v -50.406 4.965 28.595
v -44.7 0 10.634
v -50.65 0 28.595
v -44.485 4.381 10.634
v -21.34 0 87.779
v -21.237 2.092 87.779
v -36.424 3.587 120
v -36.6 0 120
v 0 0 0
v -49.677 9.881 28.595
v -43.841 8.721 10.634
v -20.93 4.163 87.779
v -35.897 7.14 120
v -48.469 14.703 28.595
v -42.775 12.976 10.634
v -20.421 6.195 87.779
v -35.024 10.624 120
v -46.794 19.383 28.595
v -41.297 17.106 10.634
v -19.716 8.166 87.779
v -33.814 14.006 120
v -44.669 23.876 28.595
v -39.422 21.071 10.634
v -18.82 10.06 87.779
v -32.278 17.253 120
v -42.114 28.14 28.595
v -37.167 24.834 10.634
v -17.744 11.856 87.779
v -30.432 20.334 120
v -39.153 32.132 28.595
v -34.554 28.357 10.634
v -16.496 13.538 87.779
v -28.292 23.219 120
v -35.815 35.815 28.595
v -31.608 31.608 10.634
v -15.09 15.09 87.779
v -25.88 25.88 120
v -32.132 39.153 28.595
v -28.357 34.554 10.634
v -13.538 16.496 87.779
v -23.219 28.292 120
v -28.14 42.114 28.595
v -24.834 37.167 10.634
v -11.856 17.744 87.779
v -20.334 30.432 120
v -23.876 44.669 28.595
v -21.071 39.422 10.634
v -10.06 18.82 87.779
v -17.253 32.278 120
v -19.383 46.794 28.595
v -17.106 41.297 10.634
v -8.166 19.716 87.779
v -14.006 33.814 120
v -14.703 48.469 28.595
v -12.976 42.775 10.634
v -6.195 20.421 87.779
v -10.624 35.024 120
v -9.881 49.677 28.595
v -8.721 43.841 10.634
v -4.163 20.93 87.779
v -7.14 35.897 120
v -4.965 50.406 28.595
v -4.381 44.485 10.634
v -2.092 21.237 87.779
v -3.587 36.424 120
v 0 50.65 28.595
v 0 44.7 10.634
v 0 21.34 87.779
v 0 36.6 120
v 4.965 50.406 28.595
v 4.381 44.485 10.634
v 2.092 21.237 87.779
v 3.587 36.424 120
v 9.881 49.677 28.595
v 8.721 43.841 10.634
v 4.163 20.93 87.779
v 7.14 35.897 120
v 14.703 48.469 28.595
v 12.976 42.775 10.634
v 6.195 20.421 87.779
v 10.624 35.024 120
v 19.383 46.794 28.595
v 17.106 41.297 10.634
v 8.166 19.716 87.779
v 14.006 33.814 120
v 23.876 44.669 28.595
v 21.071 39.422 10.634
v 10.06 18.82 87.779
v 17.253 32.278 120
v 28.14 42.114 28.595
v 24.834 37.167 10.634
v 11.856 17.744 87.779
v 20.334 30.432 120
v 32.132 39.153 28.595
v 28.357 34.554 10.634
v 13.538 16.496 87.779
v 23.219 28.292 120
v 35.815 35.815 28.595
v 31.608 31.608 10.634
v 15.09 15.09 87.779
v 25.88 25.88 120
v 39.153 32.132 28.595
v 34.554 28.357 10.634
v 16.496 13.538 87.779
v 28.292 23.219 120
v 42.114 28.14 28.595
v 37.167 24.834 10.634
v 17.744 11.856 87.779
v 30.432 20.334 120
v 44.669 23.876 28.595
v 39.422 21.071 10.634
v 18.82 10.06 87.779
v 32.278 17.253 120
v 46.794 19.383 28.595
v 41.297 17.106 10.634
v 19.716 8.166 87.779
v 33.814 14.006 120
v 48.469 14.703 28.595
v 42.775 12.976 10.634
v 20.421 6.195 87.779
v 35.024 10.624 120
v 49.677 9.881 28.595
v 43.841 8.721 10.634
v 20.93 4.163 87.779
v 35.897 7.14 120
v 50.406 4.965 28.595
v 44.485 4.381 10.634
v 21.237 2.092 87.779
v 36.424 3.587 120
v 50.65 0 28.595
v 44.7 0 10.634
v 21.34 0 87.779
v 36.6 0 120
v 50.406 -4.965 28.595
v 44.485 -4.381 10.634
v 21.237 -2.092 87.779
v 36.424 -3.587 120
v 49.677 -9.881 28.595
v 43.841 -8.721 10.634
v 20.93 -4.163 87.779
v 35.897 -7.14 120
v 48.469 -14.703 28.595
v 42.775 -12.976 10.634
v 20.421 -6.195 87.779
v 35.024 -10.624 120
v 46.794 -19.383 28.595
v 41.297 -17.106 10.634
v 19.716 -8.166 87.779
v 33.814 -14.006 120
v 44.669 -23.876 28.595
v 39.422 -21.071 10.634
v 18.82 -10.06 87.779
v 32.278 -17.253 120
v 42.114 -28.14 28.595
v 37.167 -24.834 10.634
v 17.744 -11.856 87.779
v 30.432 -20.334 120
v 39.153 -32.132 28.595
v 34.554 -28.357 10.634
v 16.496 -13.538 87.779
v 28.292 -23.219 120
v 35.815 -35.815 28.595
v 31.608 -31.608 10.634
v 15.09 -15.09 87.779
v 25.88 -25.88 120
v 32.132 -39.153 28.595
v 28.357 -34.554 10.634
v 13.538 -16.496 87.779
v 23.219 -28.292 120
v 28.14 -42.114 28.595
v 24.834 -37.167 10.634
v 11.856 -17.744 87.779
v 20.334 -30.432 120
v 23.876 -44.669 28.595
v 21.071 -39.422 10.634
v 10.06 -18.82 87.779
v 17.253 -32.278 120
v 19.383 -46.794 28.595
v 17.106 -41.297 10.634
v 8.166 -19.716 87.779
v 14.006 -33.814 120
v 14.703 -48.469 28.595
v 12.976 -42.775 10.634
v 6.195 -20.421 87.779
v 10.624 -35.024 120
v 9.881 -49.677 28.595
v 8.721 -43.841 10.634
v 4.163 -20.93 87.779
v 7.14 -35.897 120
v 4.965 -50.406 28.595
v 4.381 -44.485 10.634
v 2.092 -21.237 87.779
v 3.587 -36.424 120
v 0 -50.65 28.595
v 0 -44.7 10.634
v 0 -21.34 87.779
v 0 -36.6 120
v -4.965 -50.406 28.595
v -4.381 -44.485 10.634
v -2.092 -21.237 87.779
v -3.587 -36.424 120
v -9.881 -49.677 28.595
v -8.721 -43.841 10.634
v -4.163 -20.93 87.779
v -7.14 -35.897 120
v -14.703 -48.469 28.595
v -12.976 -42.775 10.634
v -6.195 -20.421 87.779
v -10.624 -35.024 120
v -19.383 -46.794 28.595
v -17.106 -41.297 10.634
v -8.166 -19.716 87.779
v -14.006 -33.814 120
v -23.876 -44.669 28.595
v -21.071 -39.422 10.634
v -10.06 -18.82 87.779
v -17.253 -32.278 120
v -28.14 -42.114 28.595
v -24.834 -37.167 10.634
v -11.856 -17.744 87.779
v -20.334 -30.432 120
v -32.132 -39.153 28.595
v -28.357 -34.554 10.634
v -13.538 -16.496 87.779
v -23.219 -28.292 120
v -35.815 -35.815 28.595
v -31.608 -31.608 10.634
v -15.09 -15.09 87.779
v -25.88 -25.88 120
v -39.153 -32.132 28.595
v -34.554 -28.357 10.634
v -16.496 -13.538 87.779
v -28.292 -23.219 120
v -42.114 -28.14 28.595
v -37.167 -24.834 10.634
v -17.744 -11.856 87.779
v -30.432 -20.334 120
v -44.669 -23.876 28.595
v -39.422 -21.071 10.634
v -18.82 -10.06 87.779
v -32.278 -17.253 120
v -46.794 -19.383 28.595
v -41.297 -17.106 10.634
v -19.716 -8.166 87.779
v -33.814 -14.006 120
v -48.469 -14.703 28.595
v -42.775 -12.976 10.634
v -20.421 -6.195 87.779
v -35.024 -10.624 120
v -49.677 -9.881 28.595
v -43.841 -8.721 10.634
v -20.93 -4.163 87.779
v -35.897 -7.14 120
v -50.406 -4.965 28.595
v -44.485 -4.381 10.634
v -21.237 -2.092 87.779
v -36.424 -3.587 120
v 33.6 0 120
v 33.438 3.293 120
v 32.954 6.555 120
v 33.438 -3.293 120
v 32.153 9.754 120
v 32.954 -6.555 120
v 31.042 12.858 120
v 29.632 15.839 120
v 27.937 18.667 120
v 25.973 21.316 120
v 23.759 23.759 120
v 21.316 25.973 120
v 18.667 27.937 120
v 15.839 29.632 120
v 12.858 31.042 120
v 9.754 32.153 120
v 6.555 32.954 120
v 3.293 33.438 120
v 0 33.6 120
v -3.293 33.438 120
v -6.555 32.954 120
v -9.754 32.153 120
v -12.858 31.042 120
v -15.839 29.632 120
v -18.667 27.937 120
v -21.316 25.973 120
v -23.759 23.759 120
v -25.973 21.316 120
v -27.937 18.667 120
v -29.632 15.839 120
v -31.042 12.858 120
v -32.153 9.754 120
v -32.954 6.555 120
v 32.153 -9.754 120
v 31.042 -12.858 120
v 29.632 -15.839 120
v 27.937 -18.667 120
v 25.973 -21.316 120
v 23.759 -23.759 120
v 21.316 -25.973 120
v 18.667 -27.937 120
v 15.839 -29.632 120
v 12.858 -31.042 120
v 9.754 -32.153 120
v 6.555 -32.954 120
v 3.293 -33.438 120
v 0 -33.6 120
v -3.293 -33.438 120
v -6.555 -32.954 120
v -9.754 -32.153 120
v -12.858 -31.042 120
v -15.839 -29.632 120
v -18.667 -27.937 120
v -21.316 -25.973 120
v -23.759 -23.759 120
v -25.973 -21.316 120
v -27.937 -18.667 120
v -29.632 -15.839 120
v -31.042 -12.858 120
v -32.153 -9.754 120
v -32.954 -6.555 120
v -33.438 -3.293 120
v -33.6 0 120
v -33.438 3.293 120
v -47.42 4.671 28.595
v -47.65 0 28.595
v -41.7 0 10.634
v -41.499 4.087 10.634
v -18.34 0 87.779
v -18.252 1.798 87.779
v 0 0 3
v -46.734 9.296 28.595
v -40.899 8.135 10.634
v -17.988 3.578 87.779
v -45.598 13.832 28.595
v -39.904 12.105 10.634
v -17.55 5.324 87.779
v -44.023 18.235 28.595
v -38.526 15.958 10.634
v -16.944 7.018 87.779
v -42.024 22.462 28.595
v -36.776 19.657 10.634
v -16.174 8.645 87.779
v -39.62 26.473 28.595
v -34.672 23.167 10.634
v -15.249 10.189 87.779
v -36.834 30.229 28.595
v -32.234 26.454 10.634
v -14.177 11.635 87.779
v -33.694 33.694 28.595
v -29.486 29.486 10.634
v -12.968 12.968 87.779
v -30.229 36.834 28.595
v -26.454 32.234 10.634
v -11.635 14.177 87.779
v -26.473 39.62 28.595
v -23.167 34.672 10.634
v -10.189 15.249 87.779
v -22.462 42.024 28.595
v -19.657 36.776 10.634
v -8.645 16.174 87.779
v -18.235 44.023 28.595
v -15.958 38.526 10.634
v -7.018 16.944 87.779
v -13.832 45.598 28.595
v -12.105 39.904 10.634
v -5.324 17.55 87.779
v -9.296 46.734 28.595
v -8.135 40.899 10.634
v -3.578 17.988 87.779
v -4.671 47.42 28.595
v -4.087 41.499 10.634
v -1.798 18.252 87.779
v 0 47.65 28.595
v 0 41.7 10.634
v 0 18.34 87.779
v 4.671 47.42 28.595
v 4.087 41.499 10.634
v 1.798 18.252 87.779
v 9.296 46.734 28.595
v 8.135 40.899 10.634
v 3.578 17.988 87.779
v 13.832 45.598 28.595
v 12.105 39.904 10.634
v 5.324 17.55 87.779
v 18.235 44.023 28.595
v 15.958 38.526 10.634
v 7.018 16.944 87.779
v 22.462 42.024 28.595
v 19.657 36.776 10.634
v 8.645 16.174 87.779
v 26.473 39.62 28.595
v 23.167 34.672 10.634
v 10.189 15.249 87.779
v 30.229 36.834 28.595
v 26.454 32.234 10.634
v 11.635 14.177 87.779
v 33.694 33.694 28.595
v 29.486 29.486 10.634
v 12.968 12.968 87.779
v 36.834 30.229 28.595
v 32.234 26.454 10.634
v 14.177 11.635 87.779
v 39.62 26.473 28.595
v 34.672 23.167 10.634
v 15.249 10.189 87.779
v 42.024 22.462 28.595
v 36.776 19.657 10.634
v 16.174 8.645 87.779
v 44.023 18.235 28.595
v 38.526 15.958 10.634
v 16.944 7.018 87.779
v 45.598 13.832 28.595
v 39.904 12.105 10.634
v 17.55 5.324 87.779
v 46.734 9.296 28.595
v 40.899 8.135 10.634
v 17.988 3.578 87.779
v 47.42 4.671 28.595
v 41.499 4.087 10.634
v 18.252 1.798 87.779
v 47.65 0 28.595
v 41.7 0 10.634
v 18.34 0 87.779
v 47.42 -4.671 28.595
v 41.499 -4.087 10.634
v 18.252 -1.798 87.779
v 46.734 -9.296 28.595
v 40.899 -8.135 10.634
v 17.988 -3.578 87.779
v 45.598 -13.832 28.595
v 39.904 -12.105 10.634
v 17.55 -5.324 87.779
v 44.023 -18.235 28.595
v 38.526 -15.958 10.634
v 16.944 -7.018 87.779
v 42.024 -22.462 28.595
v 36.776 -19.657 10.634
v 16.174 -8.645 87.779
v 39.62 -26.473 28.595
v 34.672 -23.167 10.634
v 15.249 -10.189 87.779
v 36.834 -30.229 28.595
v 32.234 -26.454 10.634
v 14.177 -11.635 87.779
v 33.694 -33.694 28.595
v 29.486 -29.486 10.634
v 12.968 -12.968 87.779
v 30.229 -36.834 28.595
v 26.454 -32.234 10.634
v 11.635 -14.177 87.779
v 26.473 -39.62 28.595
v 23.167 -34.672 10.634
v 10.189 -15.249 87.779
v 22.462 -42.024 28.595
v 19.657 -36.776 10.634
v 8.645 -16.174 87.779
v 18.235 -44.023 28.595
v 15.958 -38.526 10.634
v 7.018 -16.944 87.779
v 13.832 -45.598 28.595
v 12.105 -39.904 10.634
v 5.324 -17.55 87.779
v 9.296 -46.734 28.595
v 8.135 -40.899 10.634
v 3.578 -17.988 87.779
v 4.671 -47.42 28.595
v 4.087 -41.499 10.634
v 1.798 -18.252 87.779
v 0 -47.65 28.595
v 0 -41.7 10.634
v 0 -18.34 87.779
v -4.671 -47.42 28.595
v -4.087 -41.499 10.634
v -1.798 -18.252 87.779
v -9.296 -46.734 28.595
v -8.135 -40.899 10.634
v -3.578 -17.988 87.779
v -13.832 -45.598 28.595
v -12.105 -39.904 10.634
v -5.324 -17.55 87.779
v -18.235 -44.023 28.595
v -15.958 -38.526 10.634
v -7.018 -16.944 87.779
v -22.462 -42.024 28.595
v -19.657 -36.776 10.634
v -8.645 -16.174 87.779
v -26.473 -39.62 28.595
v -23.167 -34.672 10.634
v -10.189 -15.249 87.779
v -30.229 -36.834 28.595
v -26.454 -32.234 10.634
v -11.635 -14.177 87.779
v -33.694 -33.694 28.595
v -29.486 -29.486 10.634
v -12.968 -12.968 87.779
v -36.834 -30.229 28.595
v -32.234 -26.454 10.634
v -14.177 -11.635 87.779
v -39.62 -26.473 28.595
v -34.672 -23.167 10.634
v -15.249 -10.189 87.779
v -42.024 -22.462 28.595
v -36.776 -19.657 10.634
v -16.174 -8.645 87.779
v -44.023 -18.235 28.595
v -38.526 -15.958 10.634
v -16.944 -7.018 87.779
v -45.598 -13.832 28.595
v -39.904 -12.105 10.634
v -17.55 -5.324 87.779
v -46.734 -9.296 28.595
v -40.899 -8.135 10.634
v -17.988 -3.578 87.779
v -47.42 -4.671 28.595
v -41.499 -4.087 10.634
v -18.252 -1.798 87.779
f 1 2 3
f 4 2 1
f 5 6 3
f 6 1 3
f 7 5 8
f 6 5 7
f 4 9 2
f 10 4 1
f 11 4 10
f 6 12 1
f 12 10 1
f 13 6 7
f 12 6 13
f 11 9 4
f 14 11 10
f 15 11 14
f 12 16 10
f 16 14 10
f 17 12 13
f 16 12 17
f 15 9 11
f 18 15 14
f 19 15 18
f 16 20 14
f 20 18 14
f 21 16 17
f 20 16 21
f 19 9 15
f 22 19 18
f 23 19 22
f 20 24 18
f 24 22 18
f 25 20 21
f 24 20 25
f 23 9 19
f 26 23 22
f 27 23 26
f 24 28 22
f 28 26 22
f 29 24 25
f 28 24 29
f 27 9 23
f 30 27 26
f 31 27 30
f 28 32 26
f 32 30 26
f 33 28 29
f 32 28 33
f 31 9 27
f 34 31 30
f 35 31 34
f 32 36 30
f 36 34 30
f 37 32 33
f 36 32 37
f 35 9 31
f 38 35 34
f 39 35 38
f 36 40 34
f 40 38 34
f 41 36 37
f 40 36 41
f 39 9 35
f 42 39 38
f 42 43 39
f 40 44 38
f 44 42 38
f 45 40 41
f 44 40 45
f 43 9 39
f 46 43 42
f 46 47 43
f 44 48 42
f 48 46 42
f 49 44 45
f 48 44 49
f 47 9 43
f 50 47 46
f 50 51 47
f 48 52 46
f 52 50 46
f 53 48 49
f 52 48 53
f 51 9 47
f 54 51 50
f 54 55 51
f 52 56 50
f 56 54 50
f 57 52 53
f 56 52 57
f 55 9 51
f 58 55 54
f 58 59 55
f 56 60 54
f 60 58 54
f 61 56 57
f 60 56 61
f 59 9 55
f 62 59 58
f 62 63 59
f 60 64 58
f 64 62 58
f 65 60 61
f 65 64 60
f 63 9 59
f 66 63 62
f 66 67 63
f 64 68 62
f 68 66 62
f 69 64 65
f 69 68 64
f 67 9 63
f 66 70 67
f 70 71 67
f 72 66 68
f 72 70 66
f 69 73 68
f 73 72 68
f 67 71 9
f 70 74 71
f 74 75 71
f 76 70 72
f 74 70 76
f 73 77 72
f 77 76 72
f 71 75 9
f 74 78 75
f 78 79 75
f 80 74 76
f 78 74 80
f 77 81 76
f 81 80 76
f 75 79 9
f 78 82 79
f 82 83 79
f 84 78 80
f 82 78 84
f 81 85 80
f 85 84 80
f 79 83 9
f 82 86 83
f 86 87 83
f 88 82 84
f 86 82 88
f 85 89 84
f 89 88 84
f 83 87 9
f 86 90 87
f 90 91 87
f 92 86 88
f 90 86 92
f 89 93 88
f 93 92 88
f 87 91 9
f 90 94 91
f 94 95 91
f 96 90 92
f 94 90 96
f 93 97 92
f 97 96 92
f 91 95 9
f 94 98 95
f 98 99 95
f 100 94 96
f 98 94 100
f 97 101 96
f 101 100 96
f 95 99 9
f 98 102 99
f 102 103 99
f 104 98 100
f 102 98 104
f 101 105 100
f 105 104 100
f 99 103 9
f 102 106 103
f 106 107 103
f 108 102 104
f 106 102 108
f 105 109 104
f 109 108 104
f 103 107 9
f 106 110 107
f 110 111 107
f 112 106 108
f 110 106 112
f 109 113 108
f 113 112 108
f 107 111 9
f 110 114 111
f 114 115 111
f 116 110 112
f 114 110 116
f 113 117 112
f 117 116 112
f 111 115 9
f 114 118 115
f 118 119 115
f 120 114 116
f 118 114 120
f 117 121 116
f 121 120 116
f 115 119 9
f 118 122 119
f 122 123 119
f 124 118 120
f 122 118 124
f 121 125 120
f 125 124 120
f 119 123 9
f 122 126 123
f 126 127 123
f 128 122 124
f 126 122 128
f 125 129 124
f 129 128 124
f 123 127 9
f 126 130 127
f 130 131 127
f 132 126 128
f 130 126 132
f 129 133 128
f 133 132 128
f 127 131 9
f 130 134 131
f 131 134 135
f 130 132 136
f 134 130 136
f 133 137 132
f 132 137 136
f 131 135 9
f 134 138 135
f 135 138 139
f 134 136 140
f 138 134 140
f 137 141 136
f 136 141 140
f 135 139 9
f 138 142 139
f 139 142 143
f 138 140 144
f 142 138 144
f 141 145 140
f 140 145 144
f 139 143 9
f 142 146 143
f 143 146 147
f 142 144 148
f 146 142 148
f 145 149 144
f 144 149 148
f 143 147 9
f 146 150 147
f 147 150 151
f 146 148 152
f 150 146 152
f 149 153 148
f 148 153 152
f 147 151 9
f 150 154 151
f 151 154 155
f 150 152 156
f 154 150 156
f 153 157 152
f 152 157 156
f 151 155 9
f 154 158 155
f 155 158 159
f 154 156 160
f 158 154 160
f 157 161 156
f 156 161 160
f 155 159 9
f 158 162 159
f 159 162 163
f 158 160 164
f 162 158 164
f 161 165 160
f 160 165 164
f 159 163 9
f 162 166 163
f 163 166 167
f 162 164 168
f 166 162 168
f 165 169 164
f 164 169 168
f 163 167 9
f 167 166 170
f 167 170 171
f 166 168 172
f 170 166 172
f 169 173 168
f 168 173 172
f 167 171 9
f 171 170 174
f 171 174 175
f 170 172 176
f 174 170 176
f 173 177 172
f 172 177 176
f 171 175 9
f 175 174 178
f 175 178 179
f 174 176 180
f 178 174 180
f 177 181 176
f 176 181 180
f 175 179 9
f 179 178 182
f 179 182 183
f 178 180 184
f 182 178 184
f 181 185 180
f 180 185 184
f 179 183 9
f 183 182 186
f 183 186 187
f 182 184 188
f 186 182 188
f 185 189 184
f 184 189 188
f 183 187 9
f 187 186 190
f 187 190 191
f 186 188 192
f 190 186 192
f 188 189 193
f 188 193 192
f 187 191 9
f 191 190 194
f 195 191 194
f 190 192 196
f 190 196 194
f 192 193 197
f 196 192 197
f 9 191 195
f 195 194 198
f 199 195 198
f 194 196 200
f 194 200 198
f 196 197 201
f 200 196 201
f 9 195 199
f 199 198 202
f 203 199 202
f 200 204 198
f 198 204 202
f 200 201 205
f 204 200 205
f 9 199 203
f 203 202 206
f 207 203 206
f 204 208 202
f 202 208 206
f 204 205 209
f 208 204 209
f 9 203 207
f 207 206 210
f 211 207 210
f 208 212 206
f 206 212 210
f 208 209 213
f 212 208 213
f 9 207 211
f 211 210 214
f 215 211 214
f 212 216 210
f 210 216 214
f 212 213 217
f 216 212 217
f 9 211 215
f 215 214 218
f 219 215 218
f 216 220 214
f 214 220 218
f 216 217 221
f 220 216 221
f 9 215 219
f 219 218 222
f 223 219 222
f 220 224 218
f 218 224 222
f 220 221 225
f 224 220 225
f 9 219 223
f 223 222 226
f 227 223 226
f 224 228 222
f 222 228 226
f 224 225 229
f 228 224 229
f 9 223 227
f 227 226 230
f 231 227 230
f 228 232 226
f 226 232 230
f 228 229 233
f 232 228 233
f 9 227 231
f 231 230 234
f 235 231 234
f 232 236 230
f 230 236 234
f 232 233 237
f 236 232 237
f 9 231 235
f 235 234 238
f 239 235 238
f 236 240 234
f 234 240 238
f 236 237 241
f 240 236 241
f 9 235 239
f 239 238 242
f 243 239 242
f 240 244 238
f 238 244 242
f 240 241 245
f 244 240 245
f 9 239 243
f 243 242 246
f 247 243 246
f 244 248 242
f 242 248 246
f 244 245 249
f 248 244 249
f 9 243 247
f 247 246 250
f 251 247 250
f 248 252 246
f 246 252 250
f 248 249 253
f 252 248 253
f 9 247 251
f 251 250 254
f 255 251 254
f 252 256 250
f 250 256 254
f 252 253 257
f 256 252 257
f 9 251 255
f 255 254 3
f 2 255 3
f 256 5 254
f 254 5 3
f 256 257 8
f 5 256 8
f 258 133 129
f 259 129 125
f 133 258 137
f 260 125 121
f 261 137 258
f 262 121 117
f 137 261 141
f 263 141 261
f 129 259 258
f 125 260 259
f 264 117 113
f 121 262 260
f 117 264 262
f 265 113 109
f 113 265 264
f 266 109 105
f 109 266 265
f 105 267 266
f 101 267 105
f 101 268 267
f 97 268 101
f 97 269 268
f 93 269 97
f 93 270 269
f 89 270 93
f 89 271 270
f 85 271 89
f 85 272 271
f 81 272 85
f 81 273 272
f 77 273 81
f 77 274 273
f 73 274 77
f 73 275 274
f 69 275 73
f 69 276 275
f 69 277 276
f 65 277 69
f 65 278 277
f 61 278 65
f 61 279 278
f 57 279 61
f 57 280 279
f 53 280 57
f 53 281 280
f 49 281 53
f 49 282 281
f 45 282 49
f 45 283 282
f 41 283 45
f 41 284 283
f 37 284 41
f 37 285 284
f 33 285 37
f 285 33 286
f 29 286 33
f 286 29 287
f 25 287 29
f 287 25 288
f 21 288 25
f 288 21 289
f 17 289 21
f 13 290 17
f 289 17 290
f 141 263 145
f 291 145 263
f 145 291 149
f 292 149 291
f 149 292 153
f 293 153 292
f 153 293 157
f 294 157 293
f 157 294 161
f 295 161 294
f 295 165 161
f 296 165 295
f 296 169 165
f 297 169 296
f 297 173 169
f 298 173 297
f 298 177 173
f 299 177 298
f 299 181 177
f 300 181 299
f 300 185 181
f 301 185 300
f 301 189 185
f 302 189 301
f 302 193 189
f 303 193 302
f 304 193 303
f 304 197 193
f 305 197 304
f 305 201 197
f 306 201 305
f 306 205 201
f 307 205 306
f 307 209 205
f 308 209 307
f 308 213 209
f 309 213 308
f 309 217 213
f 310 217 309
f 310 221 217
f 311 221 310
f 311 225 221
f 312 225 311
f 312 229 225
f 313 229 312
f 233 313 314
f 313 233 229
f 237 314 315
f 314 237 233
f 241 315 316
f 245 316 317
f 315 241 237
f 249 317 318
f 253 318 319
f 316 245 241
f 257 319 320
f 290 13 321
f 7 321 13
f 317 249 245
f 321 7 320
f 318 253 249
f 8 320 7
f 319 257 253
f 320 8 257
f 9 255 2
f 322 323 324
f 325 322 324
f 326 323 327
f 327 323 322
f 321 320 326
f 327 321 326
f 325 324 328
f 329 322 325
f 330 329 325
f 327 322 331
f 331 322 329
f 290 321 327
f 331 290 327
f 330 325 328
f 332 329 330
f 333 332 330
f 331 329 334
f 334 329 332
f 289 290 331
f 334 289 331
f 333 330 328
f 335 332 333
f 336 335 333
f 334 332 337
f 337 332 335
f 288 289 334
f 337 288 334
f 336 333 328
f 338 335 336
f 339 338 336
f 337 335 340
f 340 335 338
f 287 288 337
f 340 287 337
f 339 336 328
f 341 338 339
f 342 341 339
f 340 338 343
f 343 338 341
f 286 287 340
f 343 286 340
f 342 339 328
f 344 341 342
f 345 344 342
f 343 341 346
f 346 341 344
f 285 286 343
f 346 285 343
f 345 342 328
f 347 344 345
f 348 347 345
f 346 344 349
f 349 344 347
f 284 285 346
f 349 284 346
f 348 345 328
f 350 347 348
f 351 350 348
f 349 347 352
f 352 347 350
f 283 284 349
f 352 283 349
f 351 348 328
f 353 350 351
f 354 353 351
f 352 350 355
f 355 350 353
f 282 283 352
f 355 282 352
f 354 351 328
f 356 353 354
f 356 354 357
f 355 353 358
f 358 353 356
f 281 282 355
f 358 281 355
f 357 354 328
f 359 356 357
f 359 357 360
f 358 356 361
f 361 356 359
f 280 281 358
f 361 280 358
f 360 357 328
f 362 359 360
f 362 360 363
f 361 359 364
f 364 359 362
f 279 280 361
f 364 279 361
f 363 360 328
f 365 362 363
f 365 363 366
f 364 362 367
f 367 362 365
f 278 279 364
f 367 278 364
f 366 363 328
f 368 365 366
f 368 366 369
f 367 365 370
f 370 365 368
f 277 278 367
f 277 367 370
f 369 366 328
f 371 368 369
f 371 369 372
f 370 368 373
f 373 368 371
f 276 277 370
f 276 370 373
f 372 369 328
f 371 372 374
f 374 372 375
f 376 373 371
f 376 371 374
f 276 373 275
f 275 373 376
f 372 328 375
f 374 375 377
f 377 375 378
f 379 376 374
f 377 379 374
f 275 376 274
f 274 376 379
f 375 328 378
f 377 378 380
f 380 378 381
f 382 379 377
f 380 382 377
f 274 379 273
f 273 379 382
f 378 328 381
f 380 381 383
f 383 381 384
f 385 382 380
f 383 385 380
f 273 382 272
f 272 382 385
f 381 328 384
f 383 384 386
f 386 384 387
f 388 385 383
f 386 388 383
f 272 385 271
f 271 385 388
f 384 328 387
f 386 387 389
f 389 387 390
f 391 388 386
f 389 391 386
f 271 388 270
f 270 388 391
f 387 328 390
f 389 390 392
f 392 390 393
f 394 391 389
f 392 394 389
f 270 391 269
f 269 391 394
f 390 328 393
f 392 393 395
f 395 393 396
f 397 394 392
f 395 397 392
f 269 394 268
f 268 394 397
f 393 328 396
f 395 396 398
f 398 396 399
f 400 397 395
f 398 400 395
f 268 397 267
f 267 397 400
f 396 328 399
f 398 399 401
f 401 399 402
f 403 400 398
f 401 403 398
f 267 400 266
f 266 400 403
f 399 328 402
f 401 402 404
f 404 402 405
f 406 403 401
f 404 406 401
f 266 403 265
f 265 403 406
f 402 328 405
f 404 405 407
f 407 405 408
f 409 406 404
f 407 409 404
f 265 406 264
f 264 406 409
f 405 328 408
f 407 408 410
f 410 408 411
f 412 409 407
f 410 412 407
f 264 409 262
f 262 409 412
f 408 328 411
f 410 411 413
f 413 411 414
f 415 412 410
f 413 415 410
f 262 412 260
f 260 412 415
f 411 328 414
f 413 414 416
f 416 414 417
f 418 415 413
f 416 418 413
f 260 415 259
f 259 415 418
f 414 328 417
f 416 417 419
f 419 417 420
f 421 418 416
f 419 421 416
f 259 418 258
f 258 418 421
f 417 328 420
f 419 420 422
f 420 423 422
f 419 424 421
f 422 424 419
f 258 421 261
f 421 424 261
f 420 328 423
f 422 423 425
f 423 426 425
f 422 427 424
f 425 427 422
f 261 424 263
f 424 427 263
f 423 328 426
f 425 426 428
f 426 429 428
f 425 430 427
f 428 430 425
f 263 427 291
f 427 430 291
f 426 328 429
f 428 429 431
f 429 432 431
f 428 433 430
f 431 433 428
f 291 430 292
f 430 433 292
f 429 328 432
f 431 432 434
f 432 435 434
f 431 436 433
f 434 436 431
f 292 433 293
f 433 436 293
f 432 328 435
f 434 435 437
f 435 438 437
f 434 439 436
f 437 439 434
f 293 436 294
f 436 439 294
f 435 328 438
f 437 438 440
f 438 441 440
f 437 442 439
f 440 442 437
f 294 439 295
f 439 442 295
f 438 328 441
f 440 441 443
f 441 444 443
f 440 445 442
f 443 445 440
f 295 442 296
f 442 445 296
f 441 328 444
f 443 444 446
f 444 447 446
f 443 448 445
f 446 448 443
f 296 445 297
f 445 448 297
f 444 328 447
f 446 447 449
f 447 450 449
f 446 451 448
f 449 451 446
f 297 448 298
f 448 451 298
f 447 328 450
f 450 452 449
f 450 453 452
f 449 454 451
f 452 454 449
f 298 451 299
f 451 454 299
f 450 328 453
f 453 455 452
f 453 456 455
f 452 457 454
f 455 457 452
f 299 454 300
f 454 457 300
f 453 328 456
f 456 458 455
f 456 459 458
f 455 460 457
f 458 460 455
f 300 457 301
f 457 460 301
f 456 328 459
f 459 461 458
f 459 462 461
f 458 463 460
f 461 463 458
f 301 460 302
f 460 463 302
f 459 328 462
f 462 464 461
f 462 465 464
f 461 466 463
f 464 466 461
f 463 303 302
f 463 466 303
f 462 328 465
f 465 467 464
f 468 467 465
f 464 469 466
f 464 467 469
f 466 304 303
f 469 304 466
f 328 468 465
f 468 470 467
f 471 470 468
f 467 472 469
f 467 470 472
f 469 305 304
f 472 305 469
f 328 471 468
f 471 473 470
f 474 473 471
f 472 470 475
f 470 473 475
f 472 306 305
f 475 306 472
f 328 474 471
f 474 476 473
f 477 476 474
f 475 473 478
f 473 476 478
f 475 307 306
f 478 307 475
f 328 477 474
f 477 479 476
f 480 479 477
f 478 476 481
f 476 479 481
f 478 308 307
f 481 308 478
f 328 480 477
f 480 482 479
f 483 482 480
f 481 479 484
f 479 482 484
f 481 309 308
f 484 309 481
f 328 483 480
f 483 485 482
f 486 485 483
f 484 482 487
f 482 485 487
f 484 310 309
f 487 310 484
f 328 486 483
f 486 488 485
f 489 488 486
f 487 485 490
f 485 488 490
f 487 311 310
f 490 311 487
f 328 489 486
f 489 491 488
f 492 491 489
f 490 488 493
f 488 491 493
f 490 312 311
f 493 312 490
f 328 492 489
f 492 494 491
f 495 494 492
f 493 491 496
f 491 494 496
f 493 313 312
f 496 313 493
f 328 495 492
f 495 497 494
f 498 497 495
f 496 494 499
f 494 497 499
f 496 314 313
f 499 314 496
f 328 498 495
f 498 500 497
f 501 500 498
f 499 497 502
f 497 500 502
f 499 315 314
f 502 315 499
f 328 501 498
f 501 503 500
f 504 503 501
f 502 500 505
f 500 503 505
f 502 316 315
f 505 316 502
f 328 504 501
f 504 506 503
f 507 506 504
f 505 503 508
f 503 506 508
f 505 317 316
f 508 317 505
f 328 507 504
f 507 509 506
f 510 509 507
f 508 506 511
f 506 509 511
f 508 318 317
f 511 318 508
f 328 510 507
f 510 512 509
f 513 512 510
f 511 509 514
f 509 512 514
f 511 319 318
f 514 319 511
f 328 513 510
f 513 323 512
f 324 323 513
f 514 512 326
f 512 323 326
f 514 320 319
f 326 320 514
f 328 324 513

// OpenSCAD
/* doodle-meta {"version":1,"parameters":{"height":{"label":"Overall height","description":"Total height of the vase","unit":"mm","feature":"overall_height"},"max_width":{"label":"Maximum width","description":"Diameter of the widest part of the vase","unit":"mm","feature":"overall_width"},"wall_thickness":{"label":"Wall thickness","description":"Thickness of the vase shell","unit":"mm","feature":"shell_thickness"}},"features":{"overall_height":{"kind":"dimension","axis":"z","label":"Overall height"},"overall_width":{"kind":"dimension","axis":"x","label":"Maximum width"},"shell_thickness":{"kind":"region","label":"Wall thickness","min":[0,0,0],"max":[{"parameter":"max_width","scale":0.5},{"parameter":"max_width","scale":0.5},{"parameter":"height"}]}}} */

// Parameters
height = 120.0;
max_width = 107.53;
wall_thickness = 3.0;

// Derived parameters
max_radius = max_width / 2.0;
eps = 0.01;

// Scaling factor to correct height from 112.51 to 120.0
// The original profile had max height ~112.51mm.
// Scale factor = 120.0 / 112.51 ≈ 1.0666
scale_z = height / 112.51;

// Profile points (radius, height) derived from normalized coordinates
// Original normalized points (u, v) mapped to (r, h) before scaling:
// Top Right: [0.8404, 0.0494] -> r=36.60, h=114.07 -> shifted h=112.51
// Neck:      [0.6985, 0.3012] -> r=21.34, h=83.86  -> shifted h=82.30
// Belly:     [0.971, 0.7636]  -> r=50.65, h=28.37  -> shifted h=26.81
// Lower:     [0.9157, 0.9039] -> r=44.70, h=11.53  -> shifted h=9.97
// Bottom:    [0.4984, 0.987]  -> r=0,     h=1.56   -> shifted h=0.00

// Apply scaling to Z coordinates to reach 120mm total height
// Radii are kept proportional to maintain aspect ratio relative to the new height.

module vase_outer() {
    polygon([
        [0, 0],
        [44.70, 9.97 * scale_z],
        [50.65, 26.81 * scale_z],
        [21.34, 82.30 * scale_z],
        [36.60, 112.51 * scale_z],
        [0, 112.51 * scale_z]
    ]);
}

module vase_inner() {
    // Inner profile offset by wall_thickness
    // Ensure radii don't go negative
    polygon([
        [0, wall_thickness],
        [max(0, 44.70 - wall_thickness), 9.97 * scale_z],
        [max(0, 50.65 - wall_thickness), 26.81 * scale_z],
        [max(0, 21.34 - wall_thickness), 82.30 * scale_z],
        [max(0, 36.60 - wall_thickness), 112.51 * scale_z],
        [0, 112.51 * scale_z]
    ]);
}

// Main design
difference() {
    // Outer solid
    rotate_extrude(angle=360, $fn=64) {
        vase_outer();
    }
    
    // Inner cavity
    rotate_extrude(angle=360, $fn=64) {
        vase_inner();
    }
}
